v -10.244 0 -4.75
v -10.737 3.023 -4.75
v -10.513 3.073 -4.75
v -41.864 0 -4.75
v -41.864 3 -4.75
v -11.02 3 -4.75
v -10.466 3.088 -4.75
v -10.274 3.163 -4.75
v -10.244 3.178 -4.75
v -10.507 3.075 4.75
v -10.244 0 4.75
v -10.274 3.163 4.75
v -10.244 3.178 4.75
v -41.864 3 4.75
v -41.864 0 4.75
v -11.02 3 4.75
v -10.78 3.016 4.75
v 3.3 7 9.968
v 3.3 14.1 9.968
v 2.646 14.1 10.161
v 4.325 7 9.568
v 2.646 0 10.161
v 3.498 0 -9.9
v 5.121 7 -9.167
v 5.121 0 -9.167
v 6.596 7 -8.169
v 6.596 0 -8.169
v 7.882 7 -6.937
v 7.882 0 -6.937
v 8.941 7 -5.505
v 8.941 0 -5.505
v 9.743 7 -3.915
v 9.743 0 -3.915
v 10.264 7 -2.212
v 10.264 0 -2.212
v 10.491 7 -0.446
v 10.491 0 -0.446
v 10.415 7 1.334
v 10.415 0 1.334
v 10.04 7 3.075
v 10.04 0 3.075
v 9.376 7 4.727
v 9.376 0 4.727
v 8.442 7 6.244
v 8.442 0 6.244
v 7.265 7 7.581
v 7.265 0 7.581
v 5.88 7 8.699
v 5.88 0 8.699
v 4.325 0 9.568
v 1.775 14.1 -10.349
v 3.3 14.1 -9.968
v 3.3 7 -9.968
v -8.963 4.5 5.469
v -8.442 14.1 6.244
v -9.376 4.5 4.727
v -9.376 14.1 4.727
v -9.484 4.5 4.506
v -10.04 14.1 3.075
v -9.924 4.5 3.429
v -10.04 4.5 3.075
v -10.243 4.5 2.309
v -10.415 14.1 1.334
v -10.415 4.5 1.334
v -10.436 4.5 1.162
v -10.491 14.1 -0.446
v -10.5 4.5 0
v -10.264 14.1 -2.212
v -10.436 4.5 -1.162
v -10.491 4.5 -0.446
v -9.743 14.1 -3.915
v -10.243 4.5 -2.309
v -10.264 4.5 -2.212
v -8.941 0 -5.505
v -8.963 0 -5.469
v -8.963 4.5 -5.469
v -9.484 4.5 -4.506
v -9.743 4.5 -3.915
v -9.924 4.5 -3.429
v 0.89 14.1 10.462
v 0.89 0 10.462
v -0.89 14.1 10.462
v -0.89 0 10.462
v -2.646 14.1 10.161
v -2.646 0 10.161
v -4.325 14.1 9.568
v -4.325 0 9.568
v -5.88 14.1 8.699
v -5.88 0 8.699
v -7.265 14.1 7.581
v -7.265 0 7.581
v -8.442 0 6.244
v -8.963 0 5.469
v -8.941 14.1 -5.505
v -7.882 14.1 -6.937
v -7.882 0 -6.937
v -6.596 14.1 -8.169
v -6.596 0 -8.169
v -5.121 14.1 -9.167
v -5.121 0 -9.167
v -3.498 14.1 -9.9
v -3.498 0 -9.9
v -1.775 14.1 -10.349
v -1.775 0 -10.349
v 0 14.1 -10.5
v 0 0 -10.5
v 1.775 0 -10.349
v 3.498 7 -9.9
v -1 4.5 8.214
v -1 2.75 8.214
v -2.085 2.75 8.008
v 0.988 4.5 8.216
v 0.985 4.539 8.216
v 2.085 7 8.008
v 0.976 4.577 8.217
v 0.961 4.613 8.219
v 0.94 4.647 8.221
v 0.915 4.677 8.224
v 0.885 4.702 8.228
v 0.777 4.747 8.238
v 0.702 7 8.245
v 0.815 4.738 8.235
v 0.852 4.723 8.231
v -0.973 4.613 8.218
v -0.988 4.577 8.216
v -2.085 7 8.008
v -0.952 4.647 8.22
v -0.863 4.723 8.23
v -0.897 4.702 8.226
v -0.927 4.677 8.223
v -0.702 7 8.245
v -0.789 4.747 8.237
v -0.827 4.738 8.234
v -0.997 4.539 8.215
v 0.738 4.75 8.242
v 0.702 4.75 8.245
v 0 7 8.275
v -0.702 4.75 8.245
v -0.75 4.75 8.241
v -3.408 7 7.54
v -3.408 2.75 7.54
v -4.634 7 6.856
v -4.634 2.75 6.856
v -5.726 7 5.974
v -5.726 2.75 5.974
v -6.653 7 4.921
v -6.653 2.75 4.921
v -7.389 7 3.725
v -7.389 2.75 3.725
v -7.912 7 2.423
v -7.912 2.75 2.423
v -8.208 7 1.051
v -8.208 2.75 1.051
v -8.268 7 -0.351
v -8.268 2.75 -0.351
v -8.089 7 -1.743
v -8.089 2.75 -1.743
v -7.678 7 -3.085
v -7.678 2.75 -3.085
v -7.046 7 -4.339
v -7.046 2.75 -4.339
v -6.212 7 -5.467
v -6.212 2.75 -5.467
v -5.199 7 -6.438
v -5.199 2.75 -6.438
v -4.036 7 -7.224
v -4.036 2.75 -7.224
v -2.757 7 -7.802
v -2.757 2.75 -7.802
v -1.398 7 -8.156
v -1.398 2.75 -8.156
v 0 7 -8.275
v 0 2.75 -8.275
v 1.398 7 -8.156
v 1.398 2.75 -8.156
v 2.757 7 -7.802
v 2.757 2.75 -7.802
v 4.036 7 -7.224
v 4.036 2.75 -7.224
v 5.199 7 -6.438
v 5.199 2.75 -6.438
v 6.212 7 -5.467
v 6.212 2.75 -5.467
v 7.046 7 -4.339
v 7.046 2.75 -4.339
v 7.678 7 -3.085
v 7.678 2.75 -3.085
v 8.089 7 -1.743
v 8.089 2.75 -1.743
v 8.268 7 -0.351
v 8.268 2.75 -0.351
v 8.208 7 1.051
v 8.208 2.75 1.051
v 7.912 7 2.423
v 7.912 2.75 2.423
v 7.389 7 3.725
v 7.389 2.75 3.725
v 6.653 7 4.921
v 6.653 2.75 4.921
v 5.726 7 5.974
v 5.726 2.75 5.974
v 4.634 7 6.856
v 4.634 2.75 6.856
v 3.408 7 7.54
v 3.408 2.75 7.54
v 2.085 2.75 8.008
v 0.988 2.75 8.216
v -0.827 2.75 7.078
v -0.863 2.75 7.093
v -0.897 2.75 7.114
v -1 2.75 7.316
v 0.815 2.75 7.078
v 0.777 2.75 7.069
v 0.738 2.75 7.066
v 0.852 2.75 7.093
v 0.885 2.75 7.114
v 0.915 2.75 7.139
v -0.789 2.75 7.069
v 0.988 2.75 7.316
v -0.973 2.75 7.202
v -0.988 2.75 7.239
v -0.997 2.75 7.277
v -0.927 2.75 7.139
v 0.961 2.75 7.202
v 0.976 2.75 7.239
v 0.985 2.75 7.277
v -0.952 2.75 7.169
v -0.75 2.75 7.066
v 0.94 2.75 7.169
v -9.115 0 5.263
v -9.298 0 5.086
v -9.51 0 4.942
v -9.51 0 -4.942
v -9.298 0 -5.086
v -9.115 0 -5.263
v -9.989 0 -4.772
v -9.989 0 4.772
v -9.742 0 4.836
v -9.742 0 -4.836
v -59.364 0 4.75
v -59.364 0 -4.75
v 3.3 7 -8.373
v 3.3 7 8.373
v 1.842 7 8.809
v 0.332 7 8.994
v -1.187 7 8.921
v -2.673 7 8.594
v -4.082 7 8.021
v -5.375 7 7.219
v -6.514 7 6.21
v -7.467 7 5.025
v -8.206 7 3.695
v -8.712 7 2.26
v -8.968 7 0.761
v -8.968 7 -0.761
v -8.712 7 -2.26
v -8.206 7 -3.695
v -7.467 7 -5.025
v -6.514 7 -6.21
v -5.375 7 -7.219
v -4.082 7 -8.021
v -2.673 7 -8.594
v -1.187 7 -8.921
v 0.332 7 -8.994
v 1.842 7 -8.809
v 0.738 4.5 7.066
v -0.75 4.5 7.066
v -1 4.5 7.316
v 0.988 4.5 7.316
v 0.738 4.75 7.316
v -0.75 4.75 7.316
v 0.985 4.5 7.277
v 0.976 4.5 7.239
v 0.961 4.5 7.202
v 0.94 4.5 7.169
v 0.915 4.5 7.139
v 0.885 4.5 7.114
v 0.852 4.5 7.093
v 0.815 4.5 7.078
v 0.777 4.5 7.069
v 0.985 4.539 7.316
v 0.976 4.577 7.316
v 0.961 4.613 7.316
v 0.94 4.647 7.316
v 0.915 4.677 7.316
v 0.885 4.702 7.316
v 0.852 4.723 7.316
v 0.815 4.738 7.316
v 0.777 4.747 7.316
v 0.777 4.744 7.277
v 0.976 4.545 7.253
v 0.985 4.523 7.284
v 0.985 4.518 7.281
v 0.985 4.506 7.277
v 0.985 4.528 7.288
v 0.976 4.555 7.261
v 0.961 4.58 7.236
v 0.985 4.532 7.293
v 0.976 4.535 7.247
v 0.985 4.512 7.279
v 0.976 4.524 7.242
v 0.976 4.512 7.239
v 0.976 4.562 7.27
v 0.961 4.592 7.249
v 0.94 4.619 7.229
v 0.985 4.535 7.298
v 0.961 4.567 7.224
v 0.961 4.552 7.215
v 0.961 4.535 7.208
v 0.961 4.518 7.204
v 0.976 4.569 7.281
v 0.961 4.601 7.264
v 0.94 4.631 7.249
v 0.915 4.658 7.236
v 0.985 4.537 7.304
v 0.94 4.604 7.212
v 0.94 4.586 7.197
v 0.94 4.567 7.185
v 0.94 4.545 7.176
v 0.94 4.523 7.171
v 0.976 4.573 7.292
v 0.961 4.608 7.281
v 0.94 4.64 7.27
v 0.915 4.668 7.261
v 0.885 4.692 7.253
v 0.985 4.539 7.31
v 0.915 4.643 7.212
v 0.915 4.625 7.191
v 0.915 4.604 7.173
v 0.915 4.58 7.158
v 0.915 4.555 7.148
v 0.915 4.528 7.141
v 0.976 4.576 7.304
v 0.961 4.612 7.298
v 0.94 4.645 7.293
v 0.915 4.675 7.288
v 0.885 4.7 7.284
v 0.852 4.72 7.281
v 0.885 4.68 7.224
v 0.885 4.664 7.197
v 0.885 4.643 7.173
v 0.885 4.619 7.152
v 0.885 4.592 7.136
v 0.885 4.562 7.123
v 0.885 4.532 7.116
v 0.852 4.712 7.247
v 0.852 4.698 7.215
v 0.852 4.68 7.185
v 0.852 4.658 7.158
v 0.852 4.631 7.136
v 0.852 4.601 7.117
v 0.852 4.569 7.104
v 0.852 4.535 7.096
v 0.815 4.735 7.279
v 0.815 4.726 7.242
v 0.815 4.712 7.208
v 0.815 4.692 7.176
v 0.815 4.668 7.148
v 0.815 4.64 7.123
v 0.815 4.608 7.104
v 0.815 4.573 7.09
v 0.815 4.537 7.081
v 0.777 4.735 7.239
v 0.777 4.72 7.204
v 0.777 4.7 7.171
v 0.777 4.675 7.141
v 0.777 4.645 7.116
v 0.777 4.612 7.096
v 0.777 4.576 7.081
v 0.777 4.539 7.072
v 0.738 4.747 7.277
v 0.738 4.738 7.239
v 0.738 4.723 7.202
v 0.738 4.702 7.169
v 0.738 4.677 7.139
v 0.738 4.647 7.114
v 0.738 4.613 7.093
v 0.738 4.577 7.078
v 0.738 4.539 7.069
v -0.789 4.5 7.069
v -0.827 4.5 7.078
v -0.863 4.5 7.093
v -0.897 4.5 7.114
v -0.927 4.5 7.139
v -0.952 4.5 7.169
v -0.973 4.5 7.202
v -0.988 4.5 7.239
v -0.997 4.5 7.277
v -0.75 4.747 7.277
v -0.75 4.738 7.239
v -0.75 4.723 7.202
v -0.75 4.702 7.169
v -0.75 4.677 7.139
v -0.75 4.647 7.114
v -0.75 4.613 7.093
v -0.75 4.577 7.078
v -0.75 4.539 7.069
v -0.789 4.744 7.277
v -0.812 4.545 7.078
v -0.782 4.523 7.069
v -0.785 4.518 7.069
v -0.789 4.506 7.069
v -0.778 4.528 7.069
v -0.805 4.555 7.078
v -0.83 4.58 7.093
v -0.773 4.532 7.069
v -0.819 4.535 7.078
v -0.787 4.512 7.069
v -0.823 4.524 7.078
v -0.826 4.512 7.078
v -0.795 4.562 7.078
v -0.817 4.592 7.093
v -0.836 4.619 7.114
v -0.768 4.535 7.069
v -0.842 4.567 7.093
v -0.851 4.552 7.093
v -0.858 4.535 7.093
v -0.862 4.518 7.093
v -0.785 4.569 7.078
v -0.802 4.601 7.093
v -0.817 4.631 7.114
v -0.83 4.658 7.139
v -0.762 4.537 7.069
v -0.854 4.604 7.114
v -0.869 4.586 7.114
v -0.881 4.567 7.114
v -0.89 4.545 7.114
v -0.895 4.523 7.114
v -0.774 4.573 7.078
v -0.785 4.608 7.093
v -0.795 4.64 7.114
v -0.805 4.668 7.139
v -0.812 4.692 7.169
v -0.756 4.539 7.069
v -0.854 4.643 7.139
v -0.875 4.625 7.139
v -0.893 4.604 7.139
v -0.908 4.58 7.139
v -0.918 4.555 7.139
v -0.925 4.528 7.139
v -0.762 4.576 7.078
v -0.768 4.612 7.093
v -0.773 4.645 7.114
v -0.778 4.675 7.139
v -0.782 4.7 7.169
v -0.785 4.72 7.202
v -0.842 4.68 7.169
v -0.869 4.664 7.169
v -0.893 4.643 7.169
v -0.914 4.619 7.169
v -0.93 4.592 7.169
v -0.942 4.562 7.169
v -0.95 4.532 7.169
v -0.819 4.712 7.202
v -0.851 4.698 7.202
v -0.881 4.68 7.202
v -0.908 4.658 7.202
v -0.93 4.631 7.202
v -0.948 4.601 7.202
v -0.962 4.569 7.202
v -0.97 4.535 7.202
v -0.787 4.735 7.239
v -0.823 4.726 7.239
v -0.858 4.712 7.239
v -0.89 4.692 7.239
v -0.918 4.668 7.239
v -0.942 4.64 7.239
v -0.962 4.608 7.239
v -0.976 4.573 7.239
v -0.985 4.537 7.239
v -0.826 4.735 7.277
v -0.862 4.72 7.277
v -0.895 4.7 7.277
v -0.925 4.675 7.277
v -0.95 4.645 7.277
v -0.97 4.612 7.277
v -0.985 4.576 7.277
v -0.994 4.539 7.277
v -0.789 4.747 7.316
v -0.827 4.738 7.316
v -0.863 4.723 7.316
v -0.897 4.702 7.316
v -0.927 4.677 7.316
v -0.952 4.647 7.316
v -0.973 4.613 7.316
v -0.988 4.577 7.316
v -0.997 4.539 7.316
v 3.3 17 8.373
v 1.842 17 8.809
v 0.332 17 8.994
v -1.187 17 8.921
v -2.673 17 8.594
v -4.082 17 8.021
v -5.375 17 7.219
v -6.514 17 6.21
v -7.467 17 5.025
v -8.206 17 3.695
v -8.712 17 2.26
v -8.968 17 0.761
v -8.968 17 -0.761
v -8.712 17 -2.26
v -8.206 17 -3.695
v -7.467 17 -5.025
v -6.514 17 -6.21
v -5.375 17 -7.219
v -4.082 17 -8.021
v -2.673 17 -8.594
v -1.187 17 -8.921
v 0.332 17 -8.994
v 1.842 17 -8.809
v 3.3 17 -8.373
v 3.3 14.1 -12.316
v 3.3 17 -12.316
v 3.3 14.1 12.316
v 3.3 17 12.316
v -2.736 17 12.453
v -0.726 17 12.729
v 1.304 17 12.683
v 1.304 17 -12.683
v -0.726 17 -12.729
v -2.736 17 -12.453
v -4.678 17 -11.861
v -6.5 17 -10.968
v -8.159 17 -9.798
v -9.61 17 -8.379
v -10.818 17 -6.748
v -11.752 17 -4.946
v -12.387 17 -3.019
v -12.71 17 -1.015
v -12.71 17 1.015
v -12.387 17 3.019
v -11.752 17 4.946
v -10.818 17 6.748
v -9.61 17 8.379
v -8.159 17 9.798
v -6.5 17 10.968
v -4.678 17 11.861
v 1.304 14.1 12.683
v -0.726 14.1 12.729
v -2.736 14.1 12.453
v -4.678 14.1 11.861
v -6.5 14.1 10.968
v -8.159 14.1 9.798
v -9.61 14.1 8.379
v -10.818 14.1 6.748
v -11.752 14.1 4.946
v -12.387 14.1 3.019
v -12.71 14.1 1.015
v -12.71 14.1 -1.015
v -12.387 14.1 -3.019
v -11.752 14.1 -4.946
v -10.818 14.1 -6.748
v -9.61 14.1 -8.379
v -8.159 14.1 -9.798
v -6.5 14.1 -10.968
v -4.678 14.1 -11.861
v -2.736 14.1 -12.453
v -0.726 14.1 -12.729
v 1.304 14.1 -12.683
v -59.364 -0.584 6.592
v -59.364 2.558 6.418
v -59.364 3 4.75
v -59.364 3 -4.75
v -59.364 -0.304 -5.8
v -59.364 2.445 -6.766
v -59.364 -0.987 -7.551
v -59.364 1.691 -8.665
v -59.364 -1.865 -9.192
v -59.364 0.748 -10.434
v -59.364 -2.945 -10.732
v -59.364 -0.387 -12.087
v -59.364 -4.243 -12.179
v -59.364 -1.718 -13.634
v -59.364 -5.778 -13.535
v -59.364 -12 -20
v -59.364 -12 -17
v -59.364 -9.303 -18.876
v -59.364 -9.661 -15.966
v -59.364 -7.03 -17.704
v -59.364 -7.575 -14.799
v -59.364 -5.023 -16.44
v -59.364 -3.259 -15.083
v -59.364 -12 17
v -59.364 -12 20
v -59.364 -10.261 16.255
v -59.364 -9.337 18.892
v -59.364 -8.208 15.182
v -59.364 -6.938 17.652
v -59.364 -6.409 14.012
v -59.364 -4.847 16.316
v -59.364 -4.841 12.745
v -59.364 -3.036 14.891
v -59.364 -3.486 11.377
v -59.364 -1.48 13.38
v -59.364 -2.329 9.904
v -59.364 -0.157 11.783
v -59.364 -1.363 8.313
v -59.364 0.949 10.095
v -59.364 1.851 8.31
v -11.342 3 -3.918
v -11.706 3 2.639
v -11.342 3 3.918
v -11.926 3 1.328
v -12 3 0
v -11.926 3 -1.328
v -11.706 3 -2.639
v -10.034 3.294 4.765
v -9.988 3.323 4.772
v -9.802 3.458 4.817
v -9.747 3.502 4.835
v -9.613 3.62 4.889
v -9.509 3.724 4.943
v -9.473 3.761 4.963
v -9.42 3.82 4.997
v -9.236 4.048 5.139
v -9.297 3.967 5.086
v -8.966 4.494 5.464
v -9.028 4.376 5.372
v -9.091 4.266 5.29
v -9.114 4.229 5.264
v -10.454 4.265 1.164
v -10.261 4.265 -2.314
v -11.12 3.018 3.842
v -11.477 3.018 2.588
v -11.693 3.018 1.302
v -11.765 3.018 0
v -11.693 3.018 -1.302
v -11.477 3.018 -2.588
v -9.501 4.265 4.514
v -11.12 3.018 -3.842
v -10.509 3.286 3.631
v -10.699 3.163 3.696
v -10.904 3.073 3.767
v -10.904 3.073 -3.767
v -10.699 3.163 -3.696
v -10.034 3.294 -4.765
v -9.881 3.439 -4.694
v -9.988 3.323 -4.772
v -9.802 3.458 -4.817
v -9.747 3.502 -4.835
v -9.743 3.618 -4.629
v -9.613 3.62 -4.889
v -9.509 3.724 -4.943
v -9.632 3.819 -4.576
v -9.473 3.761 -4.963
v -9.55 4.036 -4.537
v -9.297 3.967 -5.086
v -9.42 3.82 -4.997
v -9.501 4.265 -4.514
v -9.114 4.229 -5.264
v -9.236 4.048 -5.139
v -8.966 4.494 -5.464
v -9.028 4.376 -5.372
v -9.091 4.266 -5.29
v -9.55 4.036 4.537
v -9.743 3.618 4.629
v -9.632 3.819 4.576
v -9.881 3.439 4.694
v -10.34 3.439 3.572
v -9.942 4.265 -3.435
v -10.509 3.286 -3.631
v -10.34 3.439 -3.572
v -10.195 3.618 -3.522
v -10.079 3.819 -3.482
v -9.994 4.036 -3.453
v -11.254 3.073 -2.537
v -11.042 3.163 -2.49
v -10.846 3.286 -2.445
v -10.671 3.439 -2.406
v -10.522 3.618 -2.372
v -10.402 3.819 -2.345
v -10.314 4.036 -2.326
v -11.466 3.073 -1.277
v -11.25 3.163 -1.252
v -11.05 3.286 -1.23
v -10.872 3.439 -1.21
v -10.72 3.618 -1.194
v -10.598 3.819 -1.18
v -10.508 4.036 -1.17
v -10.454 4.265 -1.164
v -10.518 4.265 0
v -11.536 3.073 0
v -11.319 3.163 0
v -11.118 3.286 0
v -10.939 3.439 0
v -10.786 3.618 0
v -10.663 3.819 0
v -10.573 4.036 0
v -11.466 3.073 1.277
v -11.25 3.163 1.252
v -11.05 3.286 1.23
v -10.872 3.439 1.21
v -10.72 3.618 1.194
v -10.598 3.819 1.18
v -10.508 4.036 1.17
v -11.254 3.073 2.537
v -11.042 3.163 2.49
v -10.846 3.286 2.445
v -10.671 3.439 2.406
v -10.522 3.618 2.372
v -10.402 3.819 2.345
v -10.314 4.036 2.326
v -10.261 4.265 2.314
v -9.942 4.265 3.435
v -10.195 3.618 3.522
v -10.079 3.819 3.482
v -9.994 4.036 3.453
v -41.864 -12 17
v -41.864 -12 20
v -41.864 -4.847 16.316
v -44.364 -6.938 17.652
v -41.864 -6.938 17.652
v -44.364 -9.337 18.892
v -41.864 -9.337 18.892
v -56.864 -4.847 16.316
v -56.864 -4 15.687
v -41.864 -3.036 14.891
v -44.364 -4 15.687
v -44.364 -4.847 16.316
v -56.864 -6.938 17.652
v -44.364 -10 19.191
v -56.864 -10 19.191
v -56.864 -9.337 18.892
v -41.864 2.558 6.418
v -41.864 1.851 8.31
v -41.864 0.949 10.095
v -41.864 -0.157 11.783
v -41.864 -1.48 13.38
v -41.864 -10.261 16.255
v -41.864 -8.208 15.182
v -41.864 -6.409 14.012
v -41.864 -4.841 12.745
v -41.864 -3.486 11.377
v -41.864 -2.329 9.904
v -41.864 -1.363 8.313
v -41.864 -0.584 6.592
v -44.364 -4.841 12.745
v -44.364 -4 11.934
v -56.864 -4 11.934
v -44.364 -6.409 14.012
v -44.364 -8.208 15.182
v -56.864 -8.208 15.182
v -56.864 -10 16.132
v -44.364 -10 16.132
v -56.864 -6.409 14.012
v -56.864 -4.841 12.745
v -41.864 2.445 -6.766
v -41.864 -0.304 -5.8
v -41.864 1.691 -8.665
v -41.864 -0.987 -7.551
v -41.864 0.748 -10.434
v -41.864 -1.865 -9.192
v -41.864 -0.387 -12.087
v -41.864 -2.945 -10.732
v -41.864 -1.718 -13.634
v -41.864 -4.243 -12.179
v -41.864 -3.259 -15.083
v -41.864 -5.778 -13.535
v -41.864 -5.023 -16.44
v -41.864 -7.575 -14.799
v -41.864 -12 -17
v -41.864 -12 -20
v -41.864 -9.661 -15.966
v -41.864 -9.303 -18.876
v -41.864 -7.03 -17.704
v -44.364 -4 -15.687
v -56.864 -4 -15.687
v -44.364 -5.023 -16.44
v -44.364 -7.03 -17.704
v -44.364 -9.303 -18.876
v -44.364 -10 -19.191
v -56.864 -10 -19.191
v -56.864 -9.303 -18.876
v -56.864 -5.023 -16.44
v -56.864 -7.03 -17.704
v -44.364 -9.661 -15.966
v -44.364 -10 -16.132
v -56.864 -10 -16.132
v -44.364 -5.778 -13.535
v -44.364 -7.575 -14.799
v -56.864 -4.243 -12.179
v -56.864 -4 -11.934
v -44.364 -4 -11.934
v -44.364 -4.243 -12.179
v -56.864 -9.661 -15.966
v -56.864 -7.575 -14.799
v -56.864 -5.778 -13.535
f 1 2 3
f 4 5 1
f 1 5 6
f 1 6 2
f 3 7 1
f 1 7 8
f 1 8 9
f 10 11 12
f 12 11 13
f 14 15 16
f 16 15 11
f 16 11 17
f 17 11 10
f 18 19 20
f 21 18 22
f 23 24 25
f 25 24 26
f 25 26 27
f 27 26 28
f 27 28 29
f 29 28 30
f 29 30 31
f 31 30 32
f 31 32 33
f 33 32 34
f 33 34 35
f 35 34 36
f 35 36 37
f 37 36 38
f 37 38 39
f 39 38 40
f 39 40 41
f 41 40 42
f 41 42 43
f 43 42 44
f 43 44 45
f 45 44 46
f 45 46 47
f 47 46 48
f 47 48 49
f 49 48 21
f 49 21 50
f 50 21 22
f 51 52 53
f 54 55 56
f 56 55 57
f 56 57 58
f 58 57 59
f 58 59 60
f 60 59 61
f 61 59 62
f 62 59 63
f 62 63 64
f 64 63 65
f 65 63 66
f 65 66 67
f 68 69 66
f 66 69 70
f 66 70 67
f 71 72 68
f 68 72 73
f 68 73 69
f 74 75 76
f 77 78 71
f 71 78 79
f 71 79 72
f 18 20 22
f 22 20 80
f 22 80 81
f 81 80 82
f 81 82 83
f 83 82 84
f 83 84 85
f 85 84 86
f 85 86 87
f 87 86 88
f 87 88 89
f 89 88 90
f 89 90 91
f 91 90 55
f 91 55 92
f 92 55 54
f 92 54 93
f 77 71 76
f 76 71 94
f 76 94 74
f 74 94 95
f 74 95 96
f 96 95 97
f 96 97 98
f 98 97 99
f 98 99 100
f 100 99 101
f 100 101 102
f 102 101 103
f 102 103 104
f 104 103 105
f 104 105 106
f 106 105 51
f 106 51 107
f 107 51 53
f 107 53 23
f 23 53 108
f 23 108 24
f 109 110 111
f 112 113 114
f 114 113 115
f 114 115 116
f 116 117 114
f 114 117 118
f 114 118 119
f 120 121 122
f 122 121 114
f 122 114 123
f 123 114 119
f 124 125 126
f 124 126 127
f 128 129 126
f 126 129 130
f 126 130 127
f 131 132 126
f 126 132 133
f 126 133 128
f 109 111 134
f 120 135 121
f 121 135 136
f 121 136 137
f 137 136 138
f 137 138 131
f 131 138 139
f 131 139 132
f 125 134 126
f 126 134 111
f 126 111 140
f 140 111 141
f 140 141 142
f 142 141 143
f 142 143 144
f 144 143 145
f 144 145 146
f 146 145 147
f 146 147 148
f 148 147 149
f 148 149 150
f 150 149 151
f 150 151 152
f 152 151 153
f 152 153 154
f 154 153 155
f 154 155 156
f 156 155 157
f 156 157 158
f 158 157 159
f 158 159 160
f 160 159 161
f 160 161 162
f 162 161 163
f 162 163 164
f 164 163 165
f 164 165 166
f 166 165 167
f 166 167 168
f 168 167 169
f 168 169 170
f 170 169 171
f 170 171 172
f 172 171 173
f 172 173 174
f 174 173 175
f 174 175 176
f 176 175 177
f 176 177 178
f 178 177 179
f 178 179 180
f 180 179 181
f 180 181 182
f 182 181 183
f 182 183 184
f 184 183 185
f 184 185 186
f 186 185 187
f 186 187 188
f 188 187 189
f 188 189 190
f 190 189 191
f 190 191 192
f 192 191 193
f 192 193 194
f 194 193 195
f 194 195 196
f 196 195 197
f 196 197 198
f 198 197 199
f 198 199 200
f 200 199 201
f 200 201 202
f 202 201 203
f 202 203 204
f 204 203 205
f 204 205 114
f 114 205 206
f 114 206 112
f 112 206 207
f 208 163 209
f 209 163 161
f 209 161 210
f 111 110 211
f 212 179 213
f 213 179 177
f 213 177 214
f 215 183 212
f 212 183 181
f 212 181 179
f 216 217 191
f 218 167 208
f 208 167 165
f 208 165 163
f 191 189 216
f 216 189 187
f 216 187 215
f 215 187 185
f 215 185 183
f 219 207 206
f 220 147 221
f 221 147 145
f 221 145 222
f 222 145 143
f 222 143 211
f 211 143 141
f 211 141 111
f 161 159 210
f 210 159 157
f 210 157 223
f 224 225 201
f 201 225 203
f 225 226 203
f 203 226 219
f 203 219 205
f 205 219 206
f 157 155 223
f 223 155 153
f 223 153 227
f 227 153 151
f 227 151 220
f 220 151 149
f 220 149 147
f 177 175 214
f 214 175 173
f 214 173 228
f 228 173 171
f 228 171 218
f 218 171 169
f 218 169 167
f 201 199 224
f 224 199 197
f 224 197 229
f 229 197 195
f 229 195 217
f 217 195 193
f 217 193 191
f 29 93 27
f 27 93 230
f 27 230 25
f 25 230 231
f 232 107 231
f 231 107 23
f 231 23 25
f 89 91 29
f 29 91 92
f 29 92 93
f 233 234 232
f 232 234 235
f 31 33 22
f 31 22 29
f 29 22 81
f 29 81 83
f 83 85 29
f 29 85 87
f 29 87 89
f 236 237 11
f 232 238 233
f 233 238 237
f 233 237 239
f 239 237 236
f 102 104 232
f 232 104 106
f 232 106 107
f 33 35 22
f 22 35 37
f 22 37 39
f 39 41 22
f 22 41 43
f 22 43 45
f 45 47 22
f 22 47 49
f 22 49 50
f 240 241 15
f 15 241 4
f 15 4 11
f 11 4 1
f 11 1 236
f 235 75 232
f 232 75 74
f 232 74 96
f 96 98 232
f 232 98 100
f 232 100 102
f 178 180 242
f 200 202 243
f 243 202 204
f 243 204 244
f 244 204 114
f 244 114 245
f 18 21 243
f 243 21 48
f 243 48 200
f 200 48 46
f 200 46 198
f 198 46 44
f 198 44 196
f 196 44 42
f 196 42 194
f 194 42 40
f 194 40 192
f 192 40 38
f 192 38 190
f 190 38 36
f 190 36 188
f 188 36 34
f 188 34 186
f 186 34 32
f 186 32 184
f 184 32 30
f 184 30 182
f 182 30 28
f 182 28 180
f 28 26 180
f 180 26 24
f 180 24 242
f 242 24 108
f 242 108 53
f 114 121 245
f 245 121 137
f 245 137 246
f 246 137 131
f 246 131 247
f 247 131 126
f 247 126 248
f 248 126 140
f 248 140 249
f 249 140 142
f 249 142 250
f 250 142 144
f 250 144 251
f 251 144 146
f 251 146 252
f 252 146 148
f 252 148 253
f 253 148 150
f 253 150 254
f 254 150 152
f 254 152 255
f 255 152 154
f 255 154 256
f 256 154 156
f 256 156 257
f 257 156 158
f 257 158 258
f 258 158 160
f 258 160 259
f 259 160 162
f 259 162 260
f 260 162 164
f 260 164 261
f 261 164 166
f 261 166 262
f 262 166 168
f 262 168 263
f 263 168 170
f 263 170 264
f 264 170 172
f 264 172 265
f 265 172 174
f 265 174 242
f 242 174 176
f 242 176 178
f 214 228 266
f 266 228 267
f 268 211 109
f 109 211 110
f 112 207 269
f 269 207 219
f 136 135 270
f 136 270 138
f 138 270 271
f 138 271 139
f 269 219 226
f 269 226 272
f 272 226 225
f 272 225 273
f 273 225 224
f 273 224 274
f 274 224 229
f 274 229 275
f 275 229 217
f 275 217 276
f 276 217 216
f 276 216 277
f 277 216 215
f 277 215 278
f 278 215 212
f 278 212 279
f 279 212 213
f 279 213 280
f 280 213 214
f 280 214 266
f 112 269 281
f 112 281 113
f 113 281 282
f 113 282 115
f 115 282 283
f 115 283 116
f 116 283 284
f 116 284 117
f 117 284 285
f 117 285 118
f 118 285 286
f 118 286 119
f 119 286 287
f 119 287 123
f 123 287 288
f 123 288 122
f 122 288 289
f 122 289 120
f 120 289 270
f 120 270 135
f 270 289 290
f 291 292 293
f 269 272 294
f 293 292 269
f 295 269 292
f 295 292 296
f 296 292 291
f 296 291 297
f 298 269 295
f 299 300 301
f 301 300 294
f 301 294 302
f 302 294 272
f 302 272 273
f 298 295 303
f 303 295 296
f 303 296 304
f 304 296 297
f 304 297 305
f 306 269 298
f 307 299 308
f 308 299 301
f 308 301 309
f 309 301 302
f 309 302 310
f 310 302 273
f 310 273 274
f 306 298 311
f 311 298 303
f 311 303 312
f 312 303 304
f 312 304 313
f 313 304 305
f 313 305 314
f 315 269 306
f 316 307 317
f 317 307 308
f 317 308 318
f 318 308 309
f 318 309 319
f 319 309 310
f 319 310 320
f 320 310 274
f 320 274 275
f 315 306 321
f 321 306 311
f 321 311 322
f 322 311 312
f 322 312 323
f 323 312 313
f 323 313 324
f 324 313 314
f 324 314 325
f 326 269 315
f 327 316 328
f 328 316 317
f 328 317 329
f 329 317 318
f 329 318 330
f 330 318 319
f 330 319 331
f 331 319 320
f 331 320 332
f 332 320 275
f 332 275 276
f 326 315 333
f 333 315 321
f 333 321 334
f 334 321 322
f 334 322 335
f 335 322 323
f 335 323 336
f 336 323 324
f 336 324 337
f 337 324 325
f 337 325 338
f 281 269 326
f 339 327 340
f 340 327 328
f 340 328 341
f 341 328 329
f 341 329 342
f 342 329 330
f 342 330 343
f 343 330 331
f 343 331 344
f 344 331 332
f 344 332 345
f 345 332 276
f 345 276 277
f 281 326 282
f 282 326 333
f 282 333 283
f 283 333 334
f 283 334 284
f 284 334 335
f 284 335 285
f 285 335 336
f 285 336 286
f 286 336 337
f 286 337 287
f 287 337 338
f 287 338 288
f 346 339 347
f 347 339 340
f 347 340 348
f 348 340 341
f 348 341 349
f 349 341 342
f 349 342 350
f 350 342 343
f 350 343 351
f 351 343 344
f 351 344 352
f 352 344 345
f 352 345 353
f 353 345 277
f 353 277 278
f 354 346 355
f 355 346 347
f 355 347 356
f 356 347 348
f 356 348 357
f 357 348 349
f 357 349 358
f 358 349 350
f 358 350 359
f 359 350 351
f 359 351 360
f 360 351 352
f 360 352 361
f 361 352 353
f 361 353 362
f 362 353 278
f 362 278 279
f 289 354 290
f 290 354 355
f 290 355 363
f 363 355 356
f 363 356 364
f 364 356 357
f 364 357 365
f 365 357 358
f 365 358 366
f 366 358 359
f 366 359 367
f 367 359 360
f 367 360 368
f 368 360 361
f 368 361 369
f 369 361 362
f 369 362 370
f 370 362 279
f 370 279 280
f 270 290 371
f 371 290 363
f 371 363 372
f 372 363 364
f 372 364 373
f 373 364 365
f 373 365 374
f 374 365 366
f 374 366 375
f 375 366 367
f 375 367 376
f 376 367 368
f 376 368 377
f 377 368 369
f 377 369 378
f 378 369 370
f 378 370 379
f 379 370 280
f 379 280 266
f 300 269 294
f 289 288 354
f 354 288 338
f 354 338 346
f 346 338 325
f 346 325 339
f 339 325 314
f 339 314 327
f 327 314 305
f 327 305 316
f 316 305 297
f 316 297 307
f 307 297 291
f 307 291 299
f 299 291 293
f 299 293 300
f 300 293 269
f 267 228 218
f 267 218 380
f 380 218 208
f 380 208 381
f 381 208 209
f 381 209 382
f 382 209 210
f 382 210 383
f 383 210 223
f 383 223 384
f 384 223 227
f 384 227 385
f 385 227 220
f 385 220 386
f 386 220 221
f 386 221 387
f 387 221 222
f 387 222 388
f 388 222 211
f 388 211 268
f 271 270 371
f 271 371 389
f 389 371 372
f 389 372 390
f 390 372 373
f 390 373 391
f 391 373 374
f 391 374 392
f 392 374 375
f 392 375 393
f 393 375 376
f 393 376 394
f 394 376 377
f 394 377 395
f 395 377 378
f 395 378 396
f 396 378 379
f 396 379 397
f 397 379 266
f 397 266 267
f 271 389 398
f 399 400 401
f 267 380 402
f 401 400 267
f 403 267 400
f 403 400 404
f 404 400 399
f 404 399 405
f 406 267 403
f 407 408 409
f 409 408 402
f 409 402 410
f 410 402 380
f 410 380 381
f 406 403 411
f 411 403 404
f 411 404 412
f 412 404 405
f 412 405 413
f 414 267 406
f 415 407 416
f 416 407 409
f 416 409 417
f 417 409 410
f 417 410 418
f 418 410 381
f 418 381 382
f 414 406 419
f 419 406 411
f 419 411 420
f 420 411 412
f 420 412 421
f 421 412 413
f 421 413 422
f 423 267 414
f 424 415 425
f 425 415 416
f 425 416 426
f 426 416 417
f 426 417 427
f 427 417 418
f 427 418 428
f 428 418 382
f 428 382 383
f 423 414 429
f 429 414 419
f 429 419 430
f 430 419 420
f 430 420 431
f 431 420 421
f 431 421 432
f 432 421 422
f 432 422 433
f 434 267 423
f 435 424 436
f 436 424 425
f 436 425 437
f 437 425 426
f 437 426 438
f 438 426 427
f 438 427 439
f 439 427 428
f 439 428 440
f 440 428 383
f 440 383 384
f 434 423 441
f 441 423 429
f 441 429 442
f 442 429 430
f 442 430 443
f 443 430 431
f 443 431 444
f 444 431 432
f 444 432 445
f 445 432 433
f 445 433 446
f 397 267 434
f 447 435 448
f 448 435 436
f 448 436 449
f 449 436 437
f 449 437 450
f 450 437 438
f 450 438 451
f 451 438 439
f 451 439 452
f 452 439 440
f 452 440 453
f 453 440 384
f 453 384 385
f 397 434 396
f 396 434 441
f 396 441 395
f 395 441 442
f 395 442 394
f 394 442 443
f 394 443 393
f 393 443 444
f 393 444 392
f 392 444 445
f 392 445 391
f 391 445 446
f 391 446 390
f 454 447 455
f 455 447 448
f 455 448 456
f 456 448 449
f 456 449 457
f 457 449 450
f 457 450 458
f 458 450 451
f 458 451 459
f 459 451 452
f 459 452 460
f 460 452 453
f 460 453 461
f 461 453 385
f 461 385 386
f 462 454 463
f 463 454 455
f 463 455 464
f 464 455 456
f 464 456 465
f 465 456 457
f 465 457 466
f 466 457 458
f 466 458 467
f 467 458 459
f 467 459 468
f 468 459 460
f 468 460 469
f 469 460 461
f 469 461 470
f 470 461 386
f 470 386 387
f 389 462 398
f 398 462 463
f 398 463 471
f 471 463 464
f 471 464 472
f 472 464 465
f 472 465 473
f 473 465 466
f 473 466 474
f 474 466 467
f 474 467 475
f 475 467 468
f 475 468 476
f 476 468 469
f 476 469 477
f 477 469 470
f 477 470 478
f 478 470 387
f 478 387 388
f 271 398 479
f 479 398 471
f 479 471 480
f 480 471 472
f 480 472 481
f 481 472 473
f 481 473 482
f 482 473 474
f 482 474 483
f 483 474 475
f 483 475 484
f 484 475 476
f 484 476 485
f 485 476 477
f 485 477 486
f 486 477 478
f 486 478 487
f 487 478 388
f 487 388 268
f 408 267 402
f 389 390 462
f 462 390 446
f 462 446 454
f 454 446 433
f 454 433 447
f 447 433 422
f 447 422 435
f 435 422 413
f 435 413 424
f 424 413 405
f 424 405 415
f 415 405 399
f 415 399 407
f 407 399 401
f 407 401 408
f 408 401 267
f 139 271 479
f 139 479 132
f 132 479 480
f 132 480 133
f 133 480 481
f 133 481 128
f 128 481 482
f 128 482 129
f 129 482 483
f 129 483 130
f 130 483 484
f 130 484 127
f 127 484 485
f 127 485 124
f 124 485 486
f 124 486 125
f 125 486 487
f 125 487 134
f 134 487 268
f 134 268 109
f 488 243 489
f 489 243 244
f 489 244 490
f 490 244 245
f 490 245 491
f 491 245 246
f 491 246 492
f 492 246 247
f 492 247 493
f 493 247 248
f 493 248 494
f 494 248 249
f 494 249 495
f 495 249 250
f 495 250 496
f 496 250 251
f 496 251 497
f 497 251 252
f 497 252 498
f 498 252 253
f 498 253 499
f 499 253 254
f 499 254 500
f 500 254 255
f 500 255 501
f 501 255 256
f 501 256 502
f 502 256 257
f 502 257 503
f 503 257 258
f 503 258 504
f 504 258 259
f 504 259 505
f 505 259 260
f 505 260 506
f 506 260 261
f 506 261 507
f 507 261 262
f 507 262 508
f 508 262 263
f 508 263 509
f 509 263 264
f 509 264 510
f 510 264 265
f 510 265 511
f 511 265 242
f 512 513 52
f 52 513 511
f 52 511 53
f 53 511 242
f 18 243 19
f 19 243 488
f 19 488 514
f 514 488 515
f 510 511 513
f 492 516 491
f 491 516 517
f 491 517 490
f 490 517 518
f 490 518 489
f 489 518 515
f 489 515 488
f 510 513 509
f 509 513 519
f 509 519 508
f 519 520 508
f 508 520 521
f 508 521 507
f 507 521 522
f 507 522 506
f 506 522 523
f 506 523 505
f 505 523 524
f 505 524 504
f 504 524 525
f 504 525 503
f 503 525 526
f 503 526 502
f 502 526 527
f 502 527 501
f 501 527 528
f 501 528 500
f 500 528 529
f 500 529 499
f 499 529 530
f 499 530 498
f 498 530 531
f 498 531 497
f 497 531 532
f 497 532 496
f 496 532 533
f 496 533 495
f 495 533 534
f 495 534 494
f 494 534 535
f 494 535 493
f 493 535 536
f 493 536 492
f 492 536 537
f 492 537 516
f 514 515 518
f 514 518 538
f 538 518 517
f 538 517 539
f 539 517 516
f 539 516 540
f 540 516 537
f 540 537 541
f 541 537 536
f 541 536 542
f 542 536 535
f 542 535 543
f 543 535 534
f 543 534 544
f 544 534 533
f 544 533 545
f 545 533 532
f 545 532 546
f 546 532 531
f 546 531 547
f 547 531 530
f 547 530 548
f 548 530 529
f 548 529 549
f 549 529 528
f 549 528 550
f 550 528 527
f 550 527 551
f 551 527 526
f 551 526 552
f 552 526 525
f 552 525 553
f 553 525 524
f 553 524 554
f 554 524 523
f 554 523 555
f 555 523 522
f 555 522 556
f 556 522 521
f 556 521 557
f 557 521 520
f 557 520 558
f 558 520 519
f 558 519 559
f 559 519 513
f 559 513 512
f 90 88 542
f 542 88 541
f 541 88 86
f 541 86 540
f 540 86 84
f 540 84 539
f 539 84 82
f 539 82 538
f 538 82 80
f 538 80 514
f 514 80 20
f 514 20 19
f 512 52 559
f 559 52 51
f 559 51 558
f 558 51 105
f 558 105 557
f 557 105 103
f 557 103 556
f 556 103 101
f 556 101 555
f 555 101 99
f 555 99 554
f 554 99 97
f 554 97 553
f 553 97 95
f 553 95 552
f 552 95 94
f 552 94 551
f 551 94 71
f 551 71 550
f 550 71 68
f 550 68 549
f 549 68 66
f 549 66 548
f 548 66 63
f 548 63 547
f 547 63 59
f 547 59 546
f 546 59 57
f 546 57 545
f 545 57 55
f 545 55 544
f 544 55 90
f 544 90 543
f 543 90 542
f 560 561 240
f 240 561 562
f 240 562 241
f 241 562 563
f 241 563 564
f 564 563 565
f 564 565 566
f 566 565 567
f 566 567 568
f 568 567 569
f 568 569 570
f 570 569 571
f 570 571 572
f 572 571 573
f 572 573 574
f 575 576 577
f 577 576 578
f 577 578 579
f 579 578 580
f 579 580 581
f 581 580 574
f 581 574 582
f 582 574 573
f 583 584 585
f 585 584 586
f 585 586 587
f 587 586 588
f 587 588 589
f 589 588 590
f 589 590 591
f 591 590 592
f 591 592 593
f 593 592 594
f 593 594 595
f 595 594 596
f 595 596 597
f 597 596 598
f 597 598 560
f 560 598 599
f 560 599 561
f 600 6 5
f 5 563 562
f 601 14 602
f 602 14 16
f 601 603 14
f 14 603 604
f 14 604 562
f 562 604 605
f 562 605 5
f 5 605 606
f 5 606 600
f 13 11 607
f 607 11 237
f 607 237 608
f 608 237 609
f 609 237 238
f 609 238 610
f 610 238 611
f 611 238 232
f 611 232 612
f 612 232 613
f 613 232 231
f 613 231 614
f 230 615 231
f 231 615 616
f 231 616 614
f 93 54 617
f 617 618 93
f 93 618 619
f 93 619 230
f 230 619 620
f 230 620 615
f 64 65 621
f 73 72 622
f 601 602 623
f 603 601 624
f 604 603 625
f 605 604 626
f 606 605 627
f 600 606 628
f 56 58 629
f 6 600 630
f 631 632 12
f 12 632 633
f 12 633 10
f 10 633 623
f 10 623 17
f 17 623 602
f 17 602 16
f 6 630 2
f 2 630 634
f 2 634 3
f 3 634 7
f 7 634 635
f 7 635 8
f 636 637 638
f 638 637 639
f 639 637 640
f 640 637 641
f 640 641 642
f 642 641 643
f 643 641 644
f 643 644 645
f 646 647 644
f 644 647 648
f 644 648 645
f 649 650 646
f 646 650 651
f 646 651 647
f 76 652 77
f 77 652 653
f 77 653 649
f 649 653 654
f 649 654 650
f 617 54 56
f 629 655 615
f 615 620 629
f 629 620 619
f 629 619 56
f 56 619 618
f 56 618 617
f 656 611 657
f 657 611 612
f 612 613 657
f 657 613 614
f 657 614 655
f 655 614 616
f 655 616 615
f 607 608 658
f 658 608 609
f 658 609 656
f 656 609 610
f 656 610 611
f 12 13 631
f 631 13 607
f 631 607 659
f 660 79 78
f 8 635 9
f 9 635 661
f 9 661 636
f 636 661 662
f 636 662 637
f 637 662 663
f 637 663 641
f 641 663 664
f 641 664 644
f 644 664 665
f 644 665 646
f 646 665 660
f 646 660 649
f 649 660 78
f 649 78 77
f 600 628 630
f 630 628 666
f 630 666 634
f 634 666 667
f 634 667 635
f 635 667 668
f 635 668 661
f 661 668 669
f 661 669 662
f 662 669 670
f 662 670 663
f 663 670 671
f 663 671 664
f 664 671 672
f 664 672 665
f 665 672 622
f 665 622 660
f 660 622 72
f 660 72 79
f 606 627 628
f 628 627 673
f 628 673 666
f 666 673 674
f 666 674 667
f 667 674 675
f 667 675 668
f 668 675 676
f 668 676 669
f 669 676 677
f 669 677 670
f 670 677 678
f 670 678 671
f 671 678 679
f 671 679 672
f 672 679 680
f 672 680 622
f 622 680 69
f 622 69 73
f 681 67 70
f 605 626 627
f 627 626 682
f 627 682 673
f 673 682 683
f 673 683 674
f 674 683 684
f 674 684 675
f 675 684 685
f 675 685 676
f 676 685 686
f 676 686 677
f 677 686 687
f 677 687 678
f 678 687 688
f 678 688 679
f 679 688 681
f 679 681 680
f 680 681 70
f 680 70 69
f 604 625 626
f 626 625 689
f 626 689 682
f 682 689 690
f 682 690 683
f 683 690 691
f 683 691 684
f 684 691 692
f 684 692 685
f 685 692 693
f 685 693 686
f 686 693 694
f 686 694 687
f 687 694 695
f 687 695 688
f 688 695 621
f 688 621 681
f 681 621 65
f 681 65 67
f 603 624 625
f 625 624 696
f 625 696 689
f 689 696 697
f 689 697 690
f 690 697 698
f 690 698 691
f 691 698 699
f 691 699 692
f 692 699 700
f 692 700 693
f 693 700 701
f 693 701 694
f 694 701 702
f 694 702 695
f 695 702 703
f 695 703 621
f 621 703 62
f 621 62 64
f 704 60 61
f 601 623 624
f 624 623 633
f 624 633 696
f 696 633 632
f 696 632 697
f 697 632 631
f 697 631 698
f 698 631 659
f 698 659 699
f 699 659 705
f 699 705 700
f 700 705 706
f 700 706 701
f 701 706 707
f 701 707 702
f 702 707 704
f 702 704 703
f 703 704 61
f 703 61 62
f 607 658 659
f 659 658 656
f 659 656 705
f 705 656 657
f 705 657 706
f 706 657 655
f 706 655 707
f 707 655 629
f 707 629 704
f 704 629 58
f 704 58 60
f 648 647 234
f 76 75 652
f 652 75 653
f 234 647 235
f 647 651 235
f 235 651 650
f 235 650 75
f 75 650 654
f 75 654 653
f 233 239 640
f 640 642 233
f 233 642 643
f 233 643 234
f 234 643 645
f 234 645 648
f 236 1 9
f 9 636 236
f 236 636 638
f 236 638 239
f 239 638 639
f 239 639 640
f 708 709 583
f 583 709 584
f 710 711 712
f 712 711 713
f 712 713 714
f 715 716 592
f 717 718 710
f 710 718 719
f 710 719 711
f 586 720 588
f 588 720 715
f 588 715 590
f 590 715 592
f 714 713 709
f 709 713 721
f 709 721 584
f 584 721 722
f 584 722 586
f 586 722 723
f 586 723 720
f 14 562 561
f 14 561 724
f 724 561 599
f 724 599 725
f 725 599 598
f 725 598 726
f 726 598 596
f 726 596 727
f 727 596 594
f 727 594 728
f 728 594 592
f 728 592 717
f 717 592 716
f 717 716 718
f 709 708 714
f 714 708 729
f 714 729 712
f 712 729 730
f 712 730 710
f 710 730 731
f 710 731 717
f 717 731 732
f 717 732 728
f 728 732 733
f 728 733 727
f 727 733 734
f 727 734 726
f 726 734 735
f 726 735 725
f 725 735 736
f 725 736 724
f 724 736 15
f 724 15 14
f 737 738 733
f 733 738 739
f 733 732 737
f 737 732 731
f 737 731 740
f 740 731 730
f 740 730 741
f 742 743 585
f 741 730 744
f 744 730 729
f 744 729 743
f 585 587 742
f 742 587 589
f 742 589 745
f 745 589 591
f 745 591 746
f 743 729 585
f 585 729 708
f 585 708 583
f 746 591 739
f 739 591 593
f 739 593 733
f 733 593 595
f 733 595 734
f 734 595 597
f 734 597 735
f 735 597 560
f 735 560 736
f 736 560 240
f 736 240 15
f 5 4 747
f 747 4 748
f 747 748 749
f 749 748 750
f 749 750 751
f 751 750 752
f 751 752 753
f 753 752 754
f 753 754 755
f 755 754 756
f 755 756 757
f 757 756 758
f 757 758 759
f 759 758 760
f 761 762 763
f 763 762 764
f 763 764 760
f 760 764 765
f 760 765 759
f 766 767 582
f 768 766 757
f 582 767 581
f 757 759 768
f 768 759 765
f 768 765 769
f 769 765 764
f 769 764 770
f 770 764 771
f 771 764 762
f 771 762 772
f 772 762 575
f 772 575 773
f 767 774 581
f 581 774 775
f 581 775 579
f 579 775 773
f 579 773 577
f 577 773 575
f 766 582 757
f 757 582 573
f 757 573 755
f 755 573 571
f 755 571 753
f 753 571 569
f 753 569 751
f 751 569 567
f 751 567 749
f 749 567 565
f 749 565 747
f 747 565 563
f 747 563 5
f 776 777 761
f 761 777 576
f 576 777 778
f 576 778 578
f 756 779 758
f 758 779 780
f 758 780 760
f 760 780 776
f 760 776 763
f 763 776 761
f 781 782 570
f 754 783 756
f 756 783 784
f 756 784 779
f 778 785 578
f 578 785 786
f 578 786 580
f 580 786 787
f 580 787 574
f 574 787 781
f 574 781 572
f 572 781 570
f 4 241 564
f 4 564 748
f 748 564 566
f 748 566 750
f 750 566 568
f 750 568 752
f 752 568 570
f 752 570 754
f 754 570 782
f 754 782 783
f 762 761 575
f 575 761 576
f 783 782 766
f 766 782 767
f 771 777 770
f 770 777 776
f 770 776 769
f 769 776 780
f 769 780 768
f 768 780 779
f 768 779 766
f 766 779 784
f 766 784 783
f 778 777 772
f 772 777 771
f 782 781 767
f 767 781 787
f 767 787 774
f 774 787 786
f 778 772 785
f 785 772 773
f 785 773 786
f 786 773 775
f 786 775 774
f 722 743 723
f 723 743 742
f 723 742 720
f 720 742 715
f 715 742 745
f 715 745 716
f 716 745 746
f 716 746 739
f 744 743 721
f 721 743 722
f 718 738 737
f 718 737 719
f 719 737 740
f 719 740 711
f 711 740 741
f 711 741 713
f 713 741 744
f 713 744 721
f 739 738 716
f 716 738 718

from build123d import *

# Parameters (mm, degrees)
F_0_1MM_FIT_FOR_POT_R   = 10.5
BOSS_EXTRUDE1_DEPTH     = 2.75
SKETCH4_R               = 10.5
SKETCH4_R_2             = 8.275
BOSS_EXTRUDE2_DEPTH     = 4.25
BOSS_EXTRUDE3_DEPTH     = 2
FILLET1_R               = 0.25
BOSS_EXTRUDE6_DEPTH     = 10
BOSS_EXTRUDE7_DEPTH     = 2.9
BOSS_EXTRUDE8_DEPTH     = 3
FILLET2_R               = 1.5
BOSS_EXTRUDE9_DEPTH     = 17.5
SKETCH12_W              = 12.5
SKETCH12_H              = 6
CUT_EXTRUDE2_DEPTH      = 67.52567968
CUT_EXTRUDE2_DEPTH_BACK = 67.52567968


with BuildPart() as part:
    # 0.1mm fit for pot → Boss-Extrude1 (new body)
    with BuildSketch(Plane(origin=(0, 0, 0), x_dir=(1, 0, 0), z_dir=(0, 1, 0))):
        with Locations(Location((0, 0, 0), (0, 0, 270))):
            Circle(F_0_1MM_FIT_FOR_POT_R)
    extrude(amount=BOSS_EXTRUDE1_DEPTH)

    # Sketch4 → Boss-Extrude2 (add)
    with BuildSketch(Plane(origin=(0, 2.75, 0), x_dir=(1, 0, 0), z_dir=(0, 1, 0))):
        with Locations(Location((0, 0, 0), (0, 0, 270))):
            Circle(SKETCH4_R)
        with Locations(Location((0, 0, 0), (0, 0, 270))):
            Circle(SKETCH4_R_2, mode=Mode.SUBTRACT)
    extrude(amount=BOSS_EXTRUDE2_DEPTH)

    # Sketch5 → Boss-Extrude3 (add)
    with BuildSketch(Plane(origin=(0, 2.75, 0), x_dir=(1, 0, 0), z_dir=(0, 1, 0))):
        with BuildLine():
            Line((-1, -8.214354813), (-1, -7.065799598))
            Line((-1, -7.065799598), (0.988059701, -7.065799598))
            Line((0.988059701, -7.065799598), (0.988059701, -8.215799598))
            ThreePointArc((0.988059701, -8.215799598), (-0.006013695, -8.274997815), (-1, -8.214354813))
        make_face()
    extrude(amount=BOSS_EXTRUDE3_DEPTH)

    # Fillet1
    fillet1_edges = [part.edges().sort_by_distance(p)[0] for p in [
        (0.988059701, 3.75, 7.065799598),
        (-1, 3.75, 7.065799598),
        (-0.005970149, 4.75, 7.065799598),
        (-1, 4.75, 7.640077205),
        (0.988059701, 4.75, 7.640799598),
    ]]
    fillet(fillet1_edges, radius=FILLET1_R)

    # Sketch7 → Boss-Extrude6 (add)
    with BuildSketch(Plane(origin=(0, 7, 0), x_dir=(1, 0, 0), z_dir=(0, 1, 0))):
        with BuildLine():
            Line((3.299602194, 9.968080325), (3.299602194, 8.373328213))
            ThreePointArc((3.299602194, 8.373328213), (-9, 0), (3.299602194, -8.373328213))
            Line((3.299602194, -8.373328213), (3.299602194, -9.968080325))
            ThreePointArc((3.299602194, -9.968080325), (-10.5, 0), (3.299602194, 9.968080325))
        make_face()
    extrude(amount=BOSS_EXTRUDE6_DEPTH)

    # Sketch8 → Boss-Extrude7 (add)
    with BuildSketch(Plane(origin=(0, 17, 0), x_dir=(1, 0, 0), z_dir=(0, 1, 0))):
        with BuildLine():
            Line((3.299602194, 12.315645552), (3.299602194, 9.968080325))
            ThreePointArc((3.299602194, 9.968080325), (-10.5, 0), (3.299602194, -9.968080325))
            Line((3.299602194, -9.968080325), (3.299602194, -12.315645552))
            ThreePointArc((3.299602194, -12.315645552), (-12.75, 0), (3.299602194, 12.315645552))
        make_face()
    extrude(amount=-BOSS_EXTRUDE7_DEPTH)

    # Sketch9 → Boss-Extrude8 (add)
    with BuildSketch(Plane.XZ):
        with BuildLine():
            Line((-9.3641604, 4.75), (-59.3641604, 4.75))
            Line((-59.3641604, 4.75), (-59.3641604, -4.75))
            Line((-59.3641604, -4.75), (-9.3641604, -4.75))
            ThreePointArc((-9.3641604, -4.75), (-10.5, 0), (-9.3641604, 4.75))
        make_face()
    extrude(amount=-BOSS_EXTRUDE8_DEPTH)

    # Fillet2
    fillet2_edges = [part.edges().sort_by_distance(p)[0] for p in [
        (-10.5, 3, 0),
        (-9.3641604, 1.5, 4.75),
        (-9.3641604, 1.5, -4.75),
    ]]
    fillet(fillet2_edges, radius=FILLET2_R)

    # Sketch10 → Boss-Extrude9 (add)
    with BuildSketch(Plane.ZY.offset(59.3641604)):
        with BuildLine():
            Line((-20, -12), (-17, -12))
            add(Edge.make_bspline(
                [(-17, -12), (-13.13473835, -2.13897718), (-4.75, 0)],
                knots=[0, 0, 0, 0.391543848, 0.391543848, 0.391543848], degree=2))
            Line((-4.75, 0), (4.75, 0))
            add(Edge.make_bspline(
                [(4.75, 0), (13.134738349, -2.13897718), (17, -12)],
                knots=[0.608456152, 0.608456152, 0.608456152, 1, 1, 1], degree=2))
            Line((17, -12), (20, -12))
            add(Edge.make_bspline(
                [(4.75, 3), (15.273777711, 0.693481354), (20, -12)],
                knots=[0.590854454, 0.590854454, 0.590854454, 1, 1, 1], degree=2))
            Line((4.75, 3), (-4.75, 3))
            add(Edge.make_bspline(
                [(-20, -12), (-15.273777711, 0.693481354), (-4.75, 3)],
                knots=[0, 0, 0, 0.409145546, 0.409145546, 0.409145546], degree=2))
        make_face()
    extrude(amount=-BOSS_EXTRUDE9_DEPTH)

    # Sketch12 → Cut-Extrude2 (cut, two sides)
    with BuildSketch(Plane(origin=(0, 0, -4.75), x_dir=(-1, 0, 0), z_dir=(0, 0, -1))) as cut_extrude2_sk:
        with Locations((50.6141604, -7)):
            Rectangle(SKETCH12_W, SKETCH12_H)
    extrude(amount=CUT_EXTRUDE2_DEPTH, mode=Mode.SUBTRACT)
    extrude(cut_extrude2_sk.sketch, amount=-CUT_EXTRUDE2_DEPTH_BACK, mode=Mode.SUBTRACT)


solid = part.part
